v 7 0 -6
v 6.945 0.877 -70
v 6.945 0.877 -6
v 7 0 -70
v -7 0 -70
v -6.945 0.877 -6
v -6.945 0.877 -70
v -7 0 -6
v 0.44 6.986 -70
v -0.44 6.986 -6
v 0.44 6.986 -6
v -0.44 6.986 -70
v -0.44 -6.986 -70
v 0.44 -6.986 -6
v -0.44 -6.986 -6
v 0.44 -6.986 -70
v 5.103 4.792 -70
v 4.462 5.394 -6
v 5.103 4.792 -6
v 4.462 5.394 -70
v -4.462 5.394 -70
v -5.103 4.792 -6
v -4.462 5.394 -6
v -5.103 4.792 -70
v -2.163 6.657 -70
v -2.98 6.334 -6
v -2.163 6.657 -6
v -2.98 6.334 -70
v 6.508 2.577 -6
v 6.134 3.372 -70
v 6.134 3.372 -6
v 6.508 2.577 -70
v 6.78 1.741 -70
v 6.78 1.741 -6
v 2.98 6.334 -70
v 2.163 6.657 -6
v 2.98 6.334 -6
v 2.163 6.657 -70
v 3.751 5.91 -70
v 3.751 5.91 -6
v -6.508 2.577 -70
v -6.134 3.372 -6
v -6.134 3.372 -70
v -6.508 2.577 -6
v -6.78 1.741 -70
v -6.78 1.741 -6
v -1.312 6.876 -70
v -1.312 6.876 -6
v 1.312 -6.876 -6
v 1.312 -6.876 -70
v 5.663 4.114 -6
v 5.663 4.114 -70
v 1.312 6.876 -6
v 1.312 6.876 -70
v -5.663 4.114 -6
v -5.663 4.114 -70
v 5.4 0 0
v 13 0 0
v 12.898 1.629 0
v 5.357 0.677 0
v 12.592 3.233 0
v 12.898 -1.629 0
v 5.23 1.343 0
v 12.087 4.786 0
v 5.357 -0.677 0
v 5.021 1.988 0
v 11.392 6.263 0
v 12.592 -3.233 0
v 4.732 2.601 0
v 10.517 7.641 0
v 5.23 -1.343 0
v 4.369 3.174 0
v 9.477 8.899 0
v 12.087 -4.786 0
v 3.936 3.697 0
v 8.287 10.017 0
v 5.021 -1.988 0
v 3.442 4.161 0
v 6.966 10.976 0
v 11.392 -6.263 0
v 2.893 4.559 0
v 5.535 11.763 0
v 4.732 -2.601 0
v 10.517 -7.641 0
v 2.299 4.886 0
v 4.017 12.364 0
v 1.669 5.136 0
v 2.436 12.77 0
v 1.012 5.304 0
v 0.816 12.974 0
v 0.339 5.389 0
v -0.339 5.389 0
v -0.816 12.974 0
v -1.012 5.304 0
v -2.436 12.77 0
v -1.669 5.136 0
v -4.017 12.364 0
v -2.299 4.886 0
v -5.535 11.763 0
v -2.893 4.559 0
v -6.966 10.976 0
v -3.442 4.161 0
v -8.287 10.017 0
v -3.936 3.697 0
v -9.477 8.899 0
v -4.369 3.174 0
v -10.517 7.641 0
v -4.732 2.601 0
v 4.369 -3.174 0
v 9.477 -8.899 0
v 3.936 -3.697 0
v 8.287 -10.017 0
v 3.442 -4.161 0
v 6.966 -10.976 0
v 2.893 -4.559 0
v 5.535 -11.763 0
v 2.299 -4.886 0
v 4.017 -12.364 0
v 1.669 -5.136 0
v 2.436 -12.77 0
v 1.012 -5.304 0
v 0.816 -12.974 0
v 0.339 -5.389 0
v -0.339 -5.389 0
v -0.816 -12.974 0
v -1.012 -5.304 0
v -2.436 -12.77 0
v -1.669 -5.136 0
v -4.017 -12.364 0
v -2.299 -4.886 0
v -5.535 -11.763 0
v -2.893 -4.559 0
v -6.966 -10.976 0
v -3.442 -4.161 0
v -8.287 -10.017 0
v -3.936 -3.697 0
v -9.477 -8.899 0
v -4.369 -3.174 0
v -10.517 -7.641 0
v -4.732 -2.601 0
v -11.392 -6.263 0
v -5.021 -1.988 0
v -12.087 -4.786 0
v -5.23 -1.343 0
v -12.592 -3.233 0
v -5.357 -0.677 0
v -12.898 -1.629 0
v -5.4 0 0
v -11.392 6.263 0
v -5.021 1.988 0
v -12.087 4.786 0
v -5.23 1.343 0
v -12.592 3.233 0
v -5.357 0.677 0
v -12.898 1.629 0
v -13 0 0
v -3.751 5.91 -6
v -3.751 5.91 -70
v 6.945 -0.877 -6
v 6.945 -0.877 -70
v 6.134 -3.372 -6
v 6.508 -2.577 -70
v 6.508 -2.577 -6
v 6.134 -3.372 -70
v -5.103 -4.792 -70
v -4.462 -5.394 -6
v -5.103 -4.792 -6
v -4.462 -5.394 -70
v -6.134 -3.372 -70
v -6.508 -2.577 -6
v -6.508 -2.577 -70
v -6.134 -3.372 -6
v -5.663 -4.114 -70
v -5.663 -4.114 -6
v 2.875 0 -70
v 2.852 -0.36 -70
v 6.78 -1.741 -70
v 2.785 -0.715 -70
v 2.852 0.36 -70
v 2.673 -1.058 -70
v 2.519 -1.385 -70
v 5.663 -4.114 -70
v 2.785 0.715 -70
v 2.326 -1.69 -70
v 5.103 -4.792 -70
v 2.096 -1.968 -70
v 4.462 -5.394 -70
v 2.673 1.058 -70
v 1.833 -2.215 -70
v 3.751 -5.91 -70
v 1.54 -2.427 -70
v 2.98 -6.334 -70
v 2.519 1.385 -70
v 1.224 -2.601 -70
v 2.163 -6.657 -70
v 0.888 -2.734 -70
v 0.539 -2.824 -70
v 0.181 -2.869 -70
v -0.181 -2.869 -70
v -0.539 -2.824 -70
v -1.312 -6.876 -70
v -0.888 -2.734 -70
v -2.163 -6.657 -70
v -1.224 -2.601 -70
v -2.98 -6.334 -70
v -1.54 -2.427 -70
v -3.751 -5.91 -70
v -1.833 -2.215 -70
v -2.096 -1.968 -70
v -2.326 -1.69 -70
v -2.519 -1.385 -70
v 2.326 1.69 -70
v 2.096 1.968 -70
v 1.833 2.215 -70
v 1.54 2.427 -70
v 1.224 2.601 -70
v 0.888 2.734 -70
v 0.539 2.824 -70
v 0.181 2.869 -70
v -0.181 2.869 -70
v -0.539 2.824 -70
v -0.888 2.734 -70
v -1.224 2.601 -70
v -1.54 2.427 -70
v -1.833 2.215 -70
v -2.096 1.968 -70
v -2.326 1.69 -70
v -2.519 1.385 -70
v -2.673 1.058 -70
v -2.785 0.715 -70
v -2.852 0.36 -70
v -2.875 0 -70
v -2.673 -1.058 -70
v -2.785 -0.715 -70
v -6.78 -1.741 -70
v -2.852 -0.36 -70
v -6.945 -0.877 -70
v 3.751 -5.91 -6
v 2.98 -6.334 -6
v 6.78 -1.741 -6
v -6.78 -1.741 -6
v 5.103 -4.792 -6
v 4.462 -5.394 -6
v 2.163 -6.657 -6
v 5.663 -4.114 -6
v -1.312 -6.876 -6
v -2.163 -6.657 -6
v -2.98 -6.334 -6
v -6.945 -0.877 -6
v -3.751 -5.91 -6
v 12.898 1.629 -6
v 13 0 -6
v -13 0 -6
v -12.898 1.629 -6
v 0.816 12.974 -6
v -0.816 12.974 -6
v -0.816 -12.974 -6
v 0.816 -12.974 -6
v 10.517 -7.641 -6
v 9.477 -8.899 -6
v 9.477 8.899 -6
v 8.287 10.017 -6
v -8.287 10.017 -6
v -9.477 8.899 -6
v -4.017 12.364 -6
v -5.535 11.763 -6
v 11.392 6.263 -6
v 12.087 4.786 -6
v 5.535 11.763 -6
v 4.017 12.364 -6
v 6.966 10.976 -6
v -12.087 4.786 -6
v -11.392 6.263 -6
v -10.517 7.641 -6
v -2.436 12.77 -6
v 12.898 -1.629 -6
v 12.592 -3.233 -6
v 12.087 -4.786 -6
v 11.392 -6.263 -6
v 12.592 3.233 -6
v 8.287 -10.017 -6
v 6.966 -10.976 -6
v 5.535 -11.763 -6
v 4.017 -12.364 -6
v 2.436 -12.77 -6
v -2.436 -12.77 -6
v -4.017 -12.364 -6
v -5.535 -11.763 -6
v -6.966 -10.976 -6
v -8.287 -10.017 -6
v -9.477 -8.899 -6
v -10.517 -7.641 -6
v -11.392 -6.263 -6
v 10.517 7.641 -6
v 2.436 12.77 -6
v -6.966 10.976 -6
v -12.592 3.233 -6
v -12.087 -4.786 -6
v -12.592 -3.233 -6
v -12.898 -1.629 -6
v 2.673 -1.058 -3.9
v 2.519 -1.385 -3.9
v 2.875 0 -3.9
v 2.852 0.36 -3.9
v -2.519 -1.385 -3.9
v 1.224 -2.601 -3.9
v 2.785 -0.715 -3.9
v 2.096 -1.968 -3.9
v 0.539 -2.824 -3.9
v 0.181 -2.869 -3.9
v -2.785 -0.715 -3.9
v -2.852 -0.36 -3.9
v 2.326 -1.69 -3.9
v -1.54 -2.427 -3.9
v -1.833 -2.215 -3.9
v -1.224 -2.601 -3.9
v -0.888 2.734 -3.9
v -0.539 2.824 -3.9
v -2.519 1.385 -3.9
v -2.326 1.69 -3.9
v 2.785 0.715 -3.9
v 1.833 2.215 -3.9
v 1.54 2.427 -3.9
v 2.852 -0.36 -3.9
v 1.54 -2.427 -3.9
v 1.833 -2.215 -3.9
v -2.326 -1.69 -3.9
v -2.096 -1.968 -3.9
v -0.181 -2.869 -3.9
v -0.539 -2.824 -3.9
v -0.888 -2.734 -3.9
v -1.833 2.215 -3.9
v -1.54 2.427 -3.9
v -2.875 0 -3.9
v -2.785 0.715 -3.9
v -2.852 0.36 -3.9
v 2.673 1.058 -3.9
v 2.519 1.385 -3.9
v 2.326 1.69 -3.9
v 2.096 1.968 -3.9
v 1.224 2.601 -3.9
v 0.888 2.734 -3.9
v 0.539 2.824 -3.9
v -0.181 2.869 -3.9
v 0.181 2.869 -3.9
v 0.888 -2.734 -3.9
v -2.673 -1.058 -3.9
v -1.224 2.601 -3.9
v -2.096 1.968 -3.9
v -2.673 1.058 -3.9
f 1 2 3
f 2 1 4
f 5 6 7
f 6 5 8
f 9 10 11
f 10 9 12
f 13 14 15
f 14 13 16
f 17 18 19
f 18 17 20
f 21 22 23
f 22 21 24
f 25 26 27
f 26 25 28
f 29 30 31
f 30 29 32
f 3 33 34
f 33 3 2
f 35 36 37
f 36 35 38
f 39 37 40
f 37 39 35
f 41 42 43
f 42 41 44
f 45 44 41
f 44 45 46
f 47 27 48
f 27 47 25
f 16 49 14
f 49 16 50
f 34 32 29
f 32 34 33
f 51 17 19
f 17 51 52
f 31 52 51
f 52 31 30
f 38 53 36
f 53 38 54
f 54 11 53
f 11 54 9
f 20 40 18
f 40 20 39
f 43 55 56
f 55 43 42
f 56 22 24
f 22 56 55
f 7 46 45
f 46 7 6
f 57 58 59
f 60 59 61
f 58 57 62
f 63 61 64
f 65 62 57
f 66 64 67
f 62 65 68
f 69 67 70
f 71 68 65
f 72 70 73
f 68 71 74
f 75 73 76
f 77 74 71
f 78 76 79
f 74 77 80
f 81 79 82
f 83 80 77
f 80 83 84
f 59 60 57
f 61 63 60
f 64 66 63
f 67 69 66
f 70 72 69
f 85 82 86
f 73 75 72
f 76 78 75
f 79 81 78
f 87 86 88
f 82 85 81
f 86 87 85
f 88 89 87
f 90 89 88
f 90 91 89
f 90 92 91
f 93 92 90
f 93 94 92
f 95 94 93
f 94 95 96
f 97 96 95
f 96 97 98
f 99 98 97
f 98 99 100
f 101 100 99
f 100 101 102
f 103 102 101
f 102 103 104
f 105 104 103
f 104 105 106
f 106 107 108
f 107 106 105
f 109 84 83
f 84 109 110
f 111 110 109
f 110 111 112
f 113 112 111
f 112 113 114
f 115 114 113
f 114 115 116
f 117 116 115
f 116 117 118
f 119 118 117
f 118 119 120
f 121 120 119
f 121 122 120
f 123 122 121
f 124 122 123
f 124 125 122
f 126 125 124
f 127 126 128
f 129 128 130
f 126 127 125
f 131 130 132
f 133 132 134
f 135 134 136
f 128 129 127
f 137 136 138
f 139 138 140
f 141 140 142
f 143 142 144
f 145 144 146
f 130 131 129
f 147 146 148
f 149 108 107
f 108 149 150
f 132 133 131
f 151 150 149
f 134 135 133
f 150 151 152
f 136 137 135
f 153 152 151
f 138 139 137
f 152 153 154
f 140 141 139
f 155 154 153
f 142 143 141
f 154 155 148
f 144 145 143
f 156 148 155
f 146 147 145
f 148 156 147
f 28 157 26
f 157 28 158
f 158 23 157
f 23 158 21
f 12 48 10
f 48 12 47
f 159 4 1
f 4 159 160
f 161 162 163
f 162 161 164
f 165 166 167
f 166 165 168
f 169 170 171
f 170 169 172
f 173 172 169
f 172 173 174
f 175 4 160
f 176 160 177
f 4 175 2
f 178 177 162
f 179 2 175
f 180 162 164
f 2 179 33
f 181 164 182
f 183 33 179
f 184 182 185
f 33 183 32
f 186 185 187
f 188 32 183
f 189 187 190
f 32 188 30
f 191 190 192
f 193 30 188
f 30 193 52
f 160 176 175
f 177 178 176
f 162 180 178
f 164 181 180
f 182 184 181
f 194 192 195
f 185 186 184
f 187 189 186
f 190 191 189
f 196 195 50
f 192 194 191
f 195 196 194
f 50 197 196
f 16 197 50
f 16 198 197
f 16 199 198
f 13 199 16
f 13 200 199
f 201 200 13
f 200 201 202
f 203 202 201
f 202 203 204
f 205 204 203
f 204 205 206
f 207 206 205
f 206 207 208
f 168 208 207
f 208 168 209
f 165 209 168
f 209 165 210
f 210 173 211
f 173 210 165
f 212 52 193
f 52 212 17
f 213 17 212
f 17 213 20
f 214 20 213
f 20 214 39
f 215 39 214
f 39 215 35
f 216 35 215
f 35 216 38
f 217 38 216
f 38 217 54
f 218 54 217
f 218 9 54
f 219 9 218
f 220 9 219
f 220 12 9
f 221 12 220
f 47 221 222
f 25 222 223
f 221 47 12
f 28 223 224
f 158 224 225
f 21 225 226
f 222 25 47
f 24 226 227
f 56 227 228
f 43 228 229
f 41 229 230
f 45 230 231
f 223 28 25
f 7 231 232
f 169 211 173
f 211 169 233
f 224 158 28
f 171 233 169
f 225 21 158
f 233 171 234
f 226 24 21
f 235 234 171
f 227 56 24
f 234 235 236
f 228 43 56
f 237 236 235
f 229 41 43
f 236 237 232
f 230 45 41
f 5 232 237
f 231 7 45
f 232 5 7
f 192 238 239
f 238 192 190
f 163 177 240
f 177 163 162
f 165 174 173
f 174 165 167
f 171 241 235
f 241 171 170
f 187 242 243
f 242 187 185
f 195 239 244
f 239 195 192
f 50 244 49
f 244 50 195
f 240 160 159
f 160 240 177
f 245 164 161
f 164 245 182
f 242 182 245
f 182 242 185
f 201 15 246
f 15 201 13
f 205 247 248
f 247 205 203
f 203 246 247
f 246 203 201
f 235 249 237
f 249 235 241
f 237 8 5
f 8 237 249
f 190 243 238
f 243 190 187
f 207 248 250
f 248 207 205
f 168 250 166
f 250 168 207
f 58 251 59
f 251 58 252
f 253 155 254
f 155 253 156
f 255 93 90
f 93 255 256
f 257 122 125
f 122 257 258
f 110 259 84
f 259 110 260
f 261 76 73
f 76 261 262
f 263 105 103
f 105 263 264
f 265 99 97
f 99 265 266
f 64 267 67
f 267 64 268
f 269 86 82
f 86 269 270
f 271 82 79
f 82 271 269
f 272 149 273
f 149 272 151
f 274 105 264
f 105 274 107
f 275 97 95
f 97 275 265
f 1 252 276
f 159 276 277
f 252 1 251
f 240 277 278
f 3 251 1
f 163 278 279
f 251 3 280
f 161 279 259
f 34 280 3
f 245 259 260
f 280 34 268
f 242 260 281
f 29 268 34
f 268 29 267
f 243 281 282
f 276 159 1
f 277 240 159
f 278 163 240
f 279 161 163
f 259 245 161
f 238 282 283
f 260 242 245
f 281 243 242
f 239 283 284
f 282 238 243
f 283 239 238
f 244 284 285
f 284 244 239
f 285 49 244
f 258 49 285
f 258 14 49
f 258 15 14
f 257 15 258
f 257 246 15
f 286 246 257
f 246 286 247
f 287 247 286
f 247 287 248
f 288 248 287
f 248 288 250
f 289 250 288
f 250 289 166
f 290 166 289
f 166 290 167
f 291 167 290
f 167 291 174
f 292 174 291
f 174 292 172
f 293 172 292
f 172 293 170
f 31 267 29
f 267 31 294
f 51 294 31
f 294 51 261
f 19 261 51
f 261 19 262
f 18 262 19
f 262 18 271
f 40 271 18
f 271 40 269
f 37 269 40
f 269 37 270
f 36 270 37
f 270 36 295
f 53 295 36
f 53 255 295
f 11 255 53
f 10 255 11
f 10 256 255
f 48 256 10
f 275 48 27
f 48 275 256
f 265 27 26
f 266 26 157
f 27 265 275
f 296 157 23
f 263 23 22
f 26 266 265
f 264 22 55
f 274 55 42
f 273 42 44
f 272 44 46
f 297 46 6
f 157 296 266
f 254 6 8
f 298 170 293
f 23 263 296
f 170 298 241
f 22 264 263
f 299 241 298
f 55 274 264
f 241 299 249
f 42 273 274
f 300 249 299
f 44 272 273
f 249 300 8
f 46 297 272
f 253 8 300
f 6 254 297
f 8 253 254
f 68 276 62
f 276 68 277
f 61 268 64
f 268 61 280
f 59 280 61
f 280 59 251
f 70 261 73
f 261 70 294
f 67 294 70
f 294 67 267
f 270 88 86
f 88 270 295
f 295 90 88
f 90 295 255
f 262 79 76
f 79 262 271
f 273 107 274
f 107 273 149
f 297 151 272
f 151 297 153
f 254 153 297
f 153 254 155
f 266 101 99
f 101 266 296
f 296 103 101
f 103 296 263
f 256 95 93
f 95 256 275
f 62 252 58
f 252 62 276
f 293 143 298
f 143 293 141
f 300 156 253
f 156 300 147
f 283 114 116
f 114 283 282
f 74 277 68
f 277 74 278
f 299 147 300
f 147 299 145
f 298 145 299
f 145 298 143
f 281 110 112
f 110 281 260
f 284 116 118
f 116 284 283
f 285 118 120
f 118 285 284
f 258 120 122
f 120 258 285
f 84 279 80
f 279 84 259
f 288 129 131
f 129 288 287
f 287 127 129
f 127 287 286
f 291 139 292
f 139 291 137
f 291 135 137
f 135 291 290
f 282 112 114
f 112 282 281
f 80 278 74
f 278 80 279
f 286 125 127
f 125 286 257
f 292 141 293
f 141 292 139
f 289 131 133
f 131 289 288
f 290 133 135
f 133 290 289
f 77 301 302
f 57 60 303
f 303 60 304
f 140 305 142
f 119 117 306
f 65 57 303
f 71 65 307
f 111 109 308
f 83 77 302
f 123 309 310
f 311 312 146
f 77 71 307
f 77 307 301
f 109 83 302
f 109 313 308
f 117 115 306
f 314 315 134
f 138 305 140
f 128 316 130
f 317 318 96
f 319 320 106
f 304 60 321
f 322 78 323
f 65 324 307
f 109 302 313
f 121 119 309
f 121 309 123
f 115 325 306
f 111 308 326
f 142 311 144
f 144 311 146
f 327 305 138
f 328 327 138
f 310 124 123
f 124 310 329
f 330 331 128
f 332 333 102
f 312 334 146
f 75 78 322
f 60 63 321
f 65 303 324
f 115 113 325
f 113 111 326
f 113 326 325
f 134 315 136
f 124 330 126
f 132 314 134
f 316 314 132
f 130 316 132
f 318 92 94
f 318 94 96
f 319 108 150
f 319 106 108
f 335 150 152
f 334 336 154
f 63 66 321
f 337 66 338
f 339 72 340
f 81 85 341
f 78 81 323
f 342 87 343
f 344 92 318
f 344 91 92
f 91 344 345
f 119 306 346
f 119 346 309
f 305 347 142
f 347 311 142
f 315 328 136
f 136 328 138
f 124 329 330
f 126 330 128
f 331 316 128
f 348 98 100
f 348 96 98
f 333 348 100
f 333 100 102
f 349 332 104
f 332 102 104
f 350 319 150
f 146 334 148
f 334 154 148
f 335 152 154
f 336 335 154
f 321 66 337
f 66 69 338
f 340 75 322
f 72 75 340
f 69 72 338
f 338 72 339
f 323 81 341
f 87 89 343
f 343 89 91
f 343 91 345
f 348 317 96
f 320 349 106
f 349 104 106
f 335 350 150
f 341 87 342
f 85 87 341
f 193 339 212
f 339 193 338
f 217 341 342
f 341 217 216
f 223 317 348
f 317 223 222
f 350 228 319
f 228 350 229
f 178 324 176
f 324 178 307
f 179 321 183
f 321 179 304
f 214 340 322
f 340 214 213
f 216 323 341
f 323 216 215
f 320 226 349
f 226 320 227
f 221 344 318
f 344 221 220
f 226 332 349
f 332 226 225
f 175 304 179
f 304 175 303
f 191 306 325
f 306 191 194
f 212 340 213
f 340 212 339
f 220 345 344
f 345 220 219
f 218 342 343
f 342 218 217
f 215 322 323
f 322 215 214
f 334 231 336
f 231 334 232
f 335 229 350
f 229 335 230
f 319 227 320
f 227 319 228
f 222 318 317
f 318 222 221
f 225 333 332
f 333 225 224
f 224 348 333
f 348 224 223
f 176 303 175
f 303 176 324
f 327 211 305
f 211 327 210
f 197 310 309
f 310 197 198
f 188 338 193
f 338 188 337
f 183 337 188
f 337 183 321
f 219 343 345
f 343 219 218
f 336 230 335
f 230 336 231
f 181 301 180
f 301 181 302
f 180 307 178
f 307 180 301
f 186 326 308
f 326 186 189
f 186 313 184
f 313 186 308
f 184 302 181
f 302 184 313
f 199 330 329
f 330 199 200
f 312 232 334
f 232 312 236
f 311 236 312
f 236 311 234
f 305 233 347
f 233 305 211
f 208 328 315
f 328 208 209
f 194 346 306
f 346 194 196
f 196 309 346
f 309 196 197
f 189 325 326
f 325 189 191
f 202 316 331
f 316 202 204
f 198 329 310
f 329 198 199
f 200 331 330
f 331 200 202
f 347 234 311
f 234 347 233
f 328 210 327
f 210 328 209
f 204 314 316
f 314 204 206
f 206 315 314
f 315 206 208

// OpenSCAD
$fn = 50;


difference() {
	union() {
		translate(v = [0, 0, -70.0000000000]) {
			cylinder(h = 70, r = 7.0000000000);
		}
		translate(v = [0, 0, -6.0000000000]) {
			cylinder(h = 6, r = 13.0000000000);
		}
	}
	union() {
		translate(v = [0, 0, 0]) {
			rotate(a = [0, 0, 0]) {
				difference() {
					union() {
						#translate(v = [0, 0, -70.0000000000]) {
							cylinder(h = 70, r = 2.6000000000);
						}
						#translate(v = [0, 0, -3.9000000000]) {
							cylinder(h = 3.9000000000, r = 7.0000000000, r1 = 2.8750000000, r2 = 5.4000000000);
						}
						#translate(v = [0, 0, -70.0000000000]) {
							cylinder(h = 70, r = 2.8750000000);
						}
						#translate(v = [0, 0, -70.0000000000]) {
							cylinder(h = 70, r = 2.6000000000);
						}
					}
					union();
				}
			}
		}
	}
}
